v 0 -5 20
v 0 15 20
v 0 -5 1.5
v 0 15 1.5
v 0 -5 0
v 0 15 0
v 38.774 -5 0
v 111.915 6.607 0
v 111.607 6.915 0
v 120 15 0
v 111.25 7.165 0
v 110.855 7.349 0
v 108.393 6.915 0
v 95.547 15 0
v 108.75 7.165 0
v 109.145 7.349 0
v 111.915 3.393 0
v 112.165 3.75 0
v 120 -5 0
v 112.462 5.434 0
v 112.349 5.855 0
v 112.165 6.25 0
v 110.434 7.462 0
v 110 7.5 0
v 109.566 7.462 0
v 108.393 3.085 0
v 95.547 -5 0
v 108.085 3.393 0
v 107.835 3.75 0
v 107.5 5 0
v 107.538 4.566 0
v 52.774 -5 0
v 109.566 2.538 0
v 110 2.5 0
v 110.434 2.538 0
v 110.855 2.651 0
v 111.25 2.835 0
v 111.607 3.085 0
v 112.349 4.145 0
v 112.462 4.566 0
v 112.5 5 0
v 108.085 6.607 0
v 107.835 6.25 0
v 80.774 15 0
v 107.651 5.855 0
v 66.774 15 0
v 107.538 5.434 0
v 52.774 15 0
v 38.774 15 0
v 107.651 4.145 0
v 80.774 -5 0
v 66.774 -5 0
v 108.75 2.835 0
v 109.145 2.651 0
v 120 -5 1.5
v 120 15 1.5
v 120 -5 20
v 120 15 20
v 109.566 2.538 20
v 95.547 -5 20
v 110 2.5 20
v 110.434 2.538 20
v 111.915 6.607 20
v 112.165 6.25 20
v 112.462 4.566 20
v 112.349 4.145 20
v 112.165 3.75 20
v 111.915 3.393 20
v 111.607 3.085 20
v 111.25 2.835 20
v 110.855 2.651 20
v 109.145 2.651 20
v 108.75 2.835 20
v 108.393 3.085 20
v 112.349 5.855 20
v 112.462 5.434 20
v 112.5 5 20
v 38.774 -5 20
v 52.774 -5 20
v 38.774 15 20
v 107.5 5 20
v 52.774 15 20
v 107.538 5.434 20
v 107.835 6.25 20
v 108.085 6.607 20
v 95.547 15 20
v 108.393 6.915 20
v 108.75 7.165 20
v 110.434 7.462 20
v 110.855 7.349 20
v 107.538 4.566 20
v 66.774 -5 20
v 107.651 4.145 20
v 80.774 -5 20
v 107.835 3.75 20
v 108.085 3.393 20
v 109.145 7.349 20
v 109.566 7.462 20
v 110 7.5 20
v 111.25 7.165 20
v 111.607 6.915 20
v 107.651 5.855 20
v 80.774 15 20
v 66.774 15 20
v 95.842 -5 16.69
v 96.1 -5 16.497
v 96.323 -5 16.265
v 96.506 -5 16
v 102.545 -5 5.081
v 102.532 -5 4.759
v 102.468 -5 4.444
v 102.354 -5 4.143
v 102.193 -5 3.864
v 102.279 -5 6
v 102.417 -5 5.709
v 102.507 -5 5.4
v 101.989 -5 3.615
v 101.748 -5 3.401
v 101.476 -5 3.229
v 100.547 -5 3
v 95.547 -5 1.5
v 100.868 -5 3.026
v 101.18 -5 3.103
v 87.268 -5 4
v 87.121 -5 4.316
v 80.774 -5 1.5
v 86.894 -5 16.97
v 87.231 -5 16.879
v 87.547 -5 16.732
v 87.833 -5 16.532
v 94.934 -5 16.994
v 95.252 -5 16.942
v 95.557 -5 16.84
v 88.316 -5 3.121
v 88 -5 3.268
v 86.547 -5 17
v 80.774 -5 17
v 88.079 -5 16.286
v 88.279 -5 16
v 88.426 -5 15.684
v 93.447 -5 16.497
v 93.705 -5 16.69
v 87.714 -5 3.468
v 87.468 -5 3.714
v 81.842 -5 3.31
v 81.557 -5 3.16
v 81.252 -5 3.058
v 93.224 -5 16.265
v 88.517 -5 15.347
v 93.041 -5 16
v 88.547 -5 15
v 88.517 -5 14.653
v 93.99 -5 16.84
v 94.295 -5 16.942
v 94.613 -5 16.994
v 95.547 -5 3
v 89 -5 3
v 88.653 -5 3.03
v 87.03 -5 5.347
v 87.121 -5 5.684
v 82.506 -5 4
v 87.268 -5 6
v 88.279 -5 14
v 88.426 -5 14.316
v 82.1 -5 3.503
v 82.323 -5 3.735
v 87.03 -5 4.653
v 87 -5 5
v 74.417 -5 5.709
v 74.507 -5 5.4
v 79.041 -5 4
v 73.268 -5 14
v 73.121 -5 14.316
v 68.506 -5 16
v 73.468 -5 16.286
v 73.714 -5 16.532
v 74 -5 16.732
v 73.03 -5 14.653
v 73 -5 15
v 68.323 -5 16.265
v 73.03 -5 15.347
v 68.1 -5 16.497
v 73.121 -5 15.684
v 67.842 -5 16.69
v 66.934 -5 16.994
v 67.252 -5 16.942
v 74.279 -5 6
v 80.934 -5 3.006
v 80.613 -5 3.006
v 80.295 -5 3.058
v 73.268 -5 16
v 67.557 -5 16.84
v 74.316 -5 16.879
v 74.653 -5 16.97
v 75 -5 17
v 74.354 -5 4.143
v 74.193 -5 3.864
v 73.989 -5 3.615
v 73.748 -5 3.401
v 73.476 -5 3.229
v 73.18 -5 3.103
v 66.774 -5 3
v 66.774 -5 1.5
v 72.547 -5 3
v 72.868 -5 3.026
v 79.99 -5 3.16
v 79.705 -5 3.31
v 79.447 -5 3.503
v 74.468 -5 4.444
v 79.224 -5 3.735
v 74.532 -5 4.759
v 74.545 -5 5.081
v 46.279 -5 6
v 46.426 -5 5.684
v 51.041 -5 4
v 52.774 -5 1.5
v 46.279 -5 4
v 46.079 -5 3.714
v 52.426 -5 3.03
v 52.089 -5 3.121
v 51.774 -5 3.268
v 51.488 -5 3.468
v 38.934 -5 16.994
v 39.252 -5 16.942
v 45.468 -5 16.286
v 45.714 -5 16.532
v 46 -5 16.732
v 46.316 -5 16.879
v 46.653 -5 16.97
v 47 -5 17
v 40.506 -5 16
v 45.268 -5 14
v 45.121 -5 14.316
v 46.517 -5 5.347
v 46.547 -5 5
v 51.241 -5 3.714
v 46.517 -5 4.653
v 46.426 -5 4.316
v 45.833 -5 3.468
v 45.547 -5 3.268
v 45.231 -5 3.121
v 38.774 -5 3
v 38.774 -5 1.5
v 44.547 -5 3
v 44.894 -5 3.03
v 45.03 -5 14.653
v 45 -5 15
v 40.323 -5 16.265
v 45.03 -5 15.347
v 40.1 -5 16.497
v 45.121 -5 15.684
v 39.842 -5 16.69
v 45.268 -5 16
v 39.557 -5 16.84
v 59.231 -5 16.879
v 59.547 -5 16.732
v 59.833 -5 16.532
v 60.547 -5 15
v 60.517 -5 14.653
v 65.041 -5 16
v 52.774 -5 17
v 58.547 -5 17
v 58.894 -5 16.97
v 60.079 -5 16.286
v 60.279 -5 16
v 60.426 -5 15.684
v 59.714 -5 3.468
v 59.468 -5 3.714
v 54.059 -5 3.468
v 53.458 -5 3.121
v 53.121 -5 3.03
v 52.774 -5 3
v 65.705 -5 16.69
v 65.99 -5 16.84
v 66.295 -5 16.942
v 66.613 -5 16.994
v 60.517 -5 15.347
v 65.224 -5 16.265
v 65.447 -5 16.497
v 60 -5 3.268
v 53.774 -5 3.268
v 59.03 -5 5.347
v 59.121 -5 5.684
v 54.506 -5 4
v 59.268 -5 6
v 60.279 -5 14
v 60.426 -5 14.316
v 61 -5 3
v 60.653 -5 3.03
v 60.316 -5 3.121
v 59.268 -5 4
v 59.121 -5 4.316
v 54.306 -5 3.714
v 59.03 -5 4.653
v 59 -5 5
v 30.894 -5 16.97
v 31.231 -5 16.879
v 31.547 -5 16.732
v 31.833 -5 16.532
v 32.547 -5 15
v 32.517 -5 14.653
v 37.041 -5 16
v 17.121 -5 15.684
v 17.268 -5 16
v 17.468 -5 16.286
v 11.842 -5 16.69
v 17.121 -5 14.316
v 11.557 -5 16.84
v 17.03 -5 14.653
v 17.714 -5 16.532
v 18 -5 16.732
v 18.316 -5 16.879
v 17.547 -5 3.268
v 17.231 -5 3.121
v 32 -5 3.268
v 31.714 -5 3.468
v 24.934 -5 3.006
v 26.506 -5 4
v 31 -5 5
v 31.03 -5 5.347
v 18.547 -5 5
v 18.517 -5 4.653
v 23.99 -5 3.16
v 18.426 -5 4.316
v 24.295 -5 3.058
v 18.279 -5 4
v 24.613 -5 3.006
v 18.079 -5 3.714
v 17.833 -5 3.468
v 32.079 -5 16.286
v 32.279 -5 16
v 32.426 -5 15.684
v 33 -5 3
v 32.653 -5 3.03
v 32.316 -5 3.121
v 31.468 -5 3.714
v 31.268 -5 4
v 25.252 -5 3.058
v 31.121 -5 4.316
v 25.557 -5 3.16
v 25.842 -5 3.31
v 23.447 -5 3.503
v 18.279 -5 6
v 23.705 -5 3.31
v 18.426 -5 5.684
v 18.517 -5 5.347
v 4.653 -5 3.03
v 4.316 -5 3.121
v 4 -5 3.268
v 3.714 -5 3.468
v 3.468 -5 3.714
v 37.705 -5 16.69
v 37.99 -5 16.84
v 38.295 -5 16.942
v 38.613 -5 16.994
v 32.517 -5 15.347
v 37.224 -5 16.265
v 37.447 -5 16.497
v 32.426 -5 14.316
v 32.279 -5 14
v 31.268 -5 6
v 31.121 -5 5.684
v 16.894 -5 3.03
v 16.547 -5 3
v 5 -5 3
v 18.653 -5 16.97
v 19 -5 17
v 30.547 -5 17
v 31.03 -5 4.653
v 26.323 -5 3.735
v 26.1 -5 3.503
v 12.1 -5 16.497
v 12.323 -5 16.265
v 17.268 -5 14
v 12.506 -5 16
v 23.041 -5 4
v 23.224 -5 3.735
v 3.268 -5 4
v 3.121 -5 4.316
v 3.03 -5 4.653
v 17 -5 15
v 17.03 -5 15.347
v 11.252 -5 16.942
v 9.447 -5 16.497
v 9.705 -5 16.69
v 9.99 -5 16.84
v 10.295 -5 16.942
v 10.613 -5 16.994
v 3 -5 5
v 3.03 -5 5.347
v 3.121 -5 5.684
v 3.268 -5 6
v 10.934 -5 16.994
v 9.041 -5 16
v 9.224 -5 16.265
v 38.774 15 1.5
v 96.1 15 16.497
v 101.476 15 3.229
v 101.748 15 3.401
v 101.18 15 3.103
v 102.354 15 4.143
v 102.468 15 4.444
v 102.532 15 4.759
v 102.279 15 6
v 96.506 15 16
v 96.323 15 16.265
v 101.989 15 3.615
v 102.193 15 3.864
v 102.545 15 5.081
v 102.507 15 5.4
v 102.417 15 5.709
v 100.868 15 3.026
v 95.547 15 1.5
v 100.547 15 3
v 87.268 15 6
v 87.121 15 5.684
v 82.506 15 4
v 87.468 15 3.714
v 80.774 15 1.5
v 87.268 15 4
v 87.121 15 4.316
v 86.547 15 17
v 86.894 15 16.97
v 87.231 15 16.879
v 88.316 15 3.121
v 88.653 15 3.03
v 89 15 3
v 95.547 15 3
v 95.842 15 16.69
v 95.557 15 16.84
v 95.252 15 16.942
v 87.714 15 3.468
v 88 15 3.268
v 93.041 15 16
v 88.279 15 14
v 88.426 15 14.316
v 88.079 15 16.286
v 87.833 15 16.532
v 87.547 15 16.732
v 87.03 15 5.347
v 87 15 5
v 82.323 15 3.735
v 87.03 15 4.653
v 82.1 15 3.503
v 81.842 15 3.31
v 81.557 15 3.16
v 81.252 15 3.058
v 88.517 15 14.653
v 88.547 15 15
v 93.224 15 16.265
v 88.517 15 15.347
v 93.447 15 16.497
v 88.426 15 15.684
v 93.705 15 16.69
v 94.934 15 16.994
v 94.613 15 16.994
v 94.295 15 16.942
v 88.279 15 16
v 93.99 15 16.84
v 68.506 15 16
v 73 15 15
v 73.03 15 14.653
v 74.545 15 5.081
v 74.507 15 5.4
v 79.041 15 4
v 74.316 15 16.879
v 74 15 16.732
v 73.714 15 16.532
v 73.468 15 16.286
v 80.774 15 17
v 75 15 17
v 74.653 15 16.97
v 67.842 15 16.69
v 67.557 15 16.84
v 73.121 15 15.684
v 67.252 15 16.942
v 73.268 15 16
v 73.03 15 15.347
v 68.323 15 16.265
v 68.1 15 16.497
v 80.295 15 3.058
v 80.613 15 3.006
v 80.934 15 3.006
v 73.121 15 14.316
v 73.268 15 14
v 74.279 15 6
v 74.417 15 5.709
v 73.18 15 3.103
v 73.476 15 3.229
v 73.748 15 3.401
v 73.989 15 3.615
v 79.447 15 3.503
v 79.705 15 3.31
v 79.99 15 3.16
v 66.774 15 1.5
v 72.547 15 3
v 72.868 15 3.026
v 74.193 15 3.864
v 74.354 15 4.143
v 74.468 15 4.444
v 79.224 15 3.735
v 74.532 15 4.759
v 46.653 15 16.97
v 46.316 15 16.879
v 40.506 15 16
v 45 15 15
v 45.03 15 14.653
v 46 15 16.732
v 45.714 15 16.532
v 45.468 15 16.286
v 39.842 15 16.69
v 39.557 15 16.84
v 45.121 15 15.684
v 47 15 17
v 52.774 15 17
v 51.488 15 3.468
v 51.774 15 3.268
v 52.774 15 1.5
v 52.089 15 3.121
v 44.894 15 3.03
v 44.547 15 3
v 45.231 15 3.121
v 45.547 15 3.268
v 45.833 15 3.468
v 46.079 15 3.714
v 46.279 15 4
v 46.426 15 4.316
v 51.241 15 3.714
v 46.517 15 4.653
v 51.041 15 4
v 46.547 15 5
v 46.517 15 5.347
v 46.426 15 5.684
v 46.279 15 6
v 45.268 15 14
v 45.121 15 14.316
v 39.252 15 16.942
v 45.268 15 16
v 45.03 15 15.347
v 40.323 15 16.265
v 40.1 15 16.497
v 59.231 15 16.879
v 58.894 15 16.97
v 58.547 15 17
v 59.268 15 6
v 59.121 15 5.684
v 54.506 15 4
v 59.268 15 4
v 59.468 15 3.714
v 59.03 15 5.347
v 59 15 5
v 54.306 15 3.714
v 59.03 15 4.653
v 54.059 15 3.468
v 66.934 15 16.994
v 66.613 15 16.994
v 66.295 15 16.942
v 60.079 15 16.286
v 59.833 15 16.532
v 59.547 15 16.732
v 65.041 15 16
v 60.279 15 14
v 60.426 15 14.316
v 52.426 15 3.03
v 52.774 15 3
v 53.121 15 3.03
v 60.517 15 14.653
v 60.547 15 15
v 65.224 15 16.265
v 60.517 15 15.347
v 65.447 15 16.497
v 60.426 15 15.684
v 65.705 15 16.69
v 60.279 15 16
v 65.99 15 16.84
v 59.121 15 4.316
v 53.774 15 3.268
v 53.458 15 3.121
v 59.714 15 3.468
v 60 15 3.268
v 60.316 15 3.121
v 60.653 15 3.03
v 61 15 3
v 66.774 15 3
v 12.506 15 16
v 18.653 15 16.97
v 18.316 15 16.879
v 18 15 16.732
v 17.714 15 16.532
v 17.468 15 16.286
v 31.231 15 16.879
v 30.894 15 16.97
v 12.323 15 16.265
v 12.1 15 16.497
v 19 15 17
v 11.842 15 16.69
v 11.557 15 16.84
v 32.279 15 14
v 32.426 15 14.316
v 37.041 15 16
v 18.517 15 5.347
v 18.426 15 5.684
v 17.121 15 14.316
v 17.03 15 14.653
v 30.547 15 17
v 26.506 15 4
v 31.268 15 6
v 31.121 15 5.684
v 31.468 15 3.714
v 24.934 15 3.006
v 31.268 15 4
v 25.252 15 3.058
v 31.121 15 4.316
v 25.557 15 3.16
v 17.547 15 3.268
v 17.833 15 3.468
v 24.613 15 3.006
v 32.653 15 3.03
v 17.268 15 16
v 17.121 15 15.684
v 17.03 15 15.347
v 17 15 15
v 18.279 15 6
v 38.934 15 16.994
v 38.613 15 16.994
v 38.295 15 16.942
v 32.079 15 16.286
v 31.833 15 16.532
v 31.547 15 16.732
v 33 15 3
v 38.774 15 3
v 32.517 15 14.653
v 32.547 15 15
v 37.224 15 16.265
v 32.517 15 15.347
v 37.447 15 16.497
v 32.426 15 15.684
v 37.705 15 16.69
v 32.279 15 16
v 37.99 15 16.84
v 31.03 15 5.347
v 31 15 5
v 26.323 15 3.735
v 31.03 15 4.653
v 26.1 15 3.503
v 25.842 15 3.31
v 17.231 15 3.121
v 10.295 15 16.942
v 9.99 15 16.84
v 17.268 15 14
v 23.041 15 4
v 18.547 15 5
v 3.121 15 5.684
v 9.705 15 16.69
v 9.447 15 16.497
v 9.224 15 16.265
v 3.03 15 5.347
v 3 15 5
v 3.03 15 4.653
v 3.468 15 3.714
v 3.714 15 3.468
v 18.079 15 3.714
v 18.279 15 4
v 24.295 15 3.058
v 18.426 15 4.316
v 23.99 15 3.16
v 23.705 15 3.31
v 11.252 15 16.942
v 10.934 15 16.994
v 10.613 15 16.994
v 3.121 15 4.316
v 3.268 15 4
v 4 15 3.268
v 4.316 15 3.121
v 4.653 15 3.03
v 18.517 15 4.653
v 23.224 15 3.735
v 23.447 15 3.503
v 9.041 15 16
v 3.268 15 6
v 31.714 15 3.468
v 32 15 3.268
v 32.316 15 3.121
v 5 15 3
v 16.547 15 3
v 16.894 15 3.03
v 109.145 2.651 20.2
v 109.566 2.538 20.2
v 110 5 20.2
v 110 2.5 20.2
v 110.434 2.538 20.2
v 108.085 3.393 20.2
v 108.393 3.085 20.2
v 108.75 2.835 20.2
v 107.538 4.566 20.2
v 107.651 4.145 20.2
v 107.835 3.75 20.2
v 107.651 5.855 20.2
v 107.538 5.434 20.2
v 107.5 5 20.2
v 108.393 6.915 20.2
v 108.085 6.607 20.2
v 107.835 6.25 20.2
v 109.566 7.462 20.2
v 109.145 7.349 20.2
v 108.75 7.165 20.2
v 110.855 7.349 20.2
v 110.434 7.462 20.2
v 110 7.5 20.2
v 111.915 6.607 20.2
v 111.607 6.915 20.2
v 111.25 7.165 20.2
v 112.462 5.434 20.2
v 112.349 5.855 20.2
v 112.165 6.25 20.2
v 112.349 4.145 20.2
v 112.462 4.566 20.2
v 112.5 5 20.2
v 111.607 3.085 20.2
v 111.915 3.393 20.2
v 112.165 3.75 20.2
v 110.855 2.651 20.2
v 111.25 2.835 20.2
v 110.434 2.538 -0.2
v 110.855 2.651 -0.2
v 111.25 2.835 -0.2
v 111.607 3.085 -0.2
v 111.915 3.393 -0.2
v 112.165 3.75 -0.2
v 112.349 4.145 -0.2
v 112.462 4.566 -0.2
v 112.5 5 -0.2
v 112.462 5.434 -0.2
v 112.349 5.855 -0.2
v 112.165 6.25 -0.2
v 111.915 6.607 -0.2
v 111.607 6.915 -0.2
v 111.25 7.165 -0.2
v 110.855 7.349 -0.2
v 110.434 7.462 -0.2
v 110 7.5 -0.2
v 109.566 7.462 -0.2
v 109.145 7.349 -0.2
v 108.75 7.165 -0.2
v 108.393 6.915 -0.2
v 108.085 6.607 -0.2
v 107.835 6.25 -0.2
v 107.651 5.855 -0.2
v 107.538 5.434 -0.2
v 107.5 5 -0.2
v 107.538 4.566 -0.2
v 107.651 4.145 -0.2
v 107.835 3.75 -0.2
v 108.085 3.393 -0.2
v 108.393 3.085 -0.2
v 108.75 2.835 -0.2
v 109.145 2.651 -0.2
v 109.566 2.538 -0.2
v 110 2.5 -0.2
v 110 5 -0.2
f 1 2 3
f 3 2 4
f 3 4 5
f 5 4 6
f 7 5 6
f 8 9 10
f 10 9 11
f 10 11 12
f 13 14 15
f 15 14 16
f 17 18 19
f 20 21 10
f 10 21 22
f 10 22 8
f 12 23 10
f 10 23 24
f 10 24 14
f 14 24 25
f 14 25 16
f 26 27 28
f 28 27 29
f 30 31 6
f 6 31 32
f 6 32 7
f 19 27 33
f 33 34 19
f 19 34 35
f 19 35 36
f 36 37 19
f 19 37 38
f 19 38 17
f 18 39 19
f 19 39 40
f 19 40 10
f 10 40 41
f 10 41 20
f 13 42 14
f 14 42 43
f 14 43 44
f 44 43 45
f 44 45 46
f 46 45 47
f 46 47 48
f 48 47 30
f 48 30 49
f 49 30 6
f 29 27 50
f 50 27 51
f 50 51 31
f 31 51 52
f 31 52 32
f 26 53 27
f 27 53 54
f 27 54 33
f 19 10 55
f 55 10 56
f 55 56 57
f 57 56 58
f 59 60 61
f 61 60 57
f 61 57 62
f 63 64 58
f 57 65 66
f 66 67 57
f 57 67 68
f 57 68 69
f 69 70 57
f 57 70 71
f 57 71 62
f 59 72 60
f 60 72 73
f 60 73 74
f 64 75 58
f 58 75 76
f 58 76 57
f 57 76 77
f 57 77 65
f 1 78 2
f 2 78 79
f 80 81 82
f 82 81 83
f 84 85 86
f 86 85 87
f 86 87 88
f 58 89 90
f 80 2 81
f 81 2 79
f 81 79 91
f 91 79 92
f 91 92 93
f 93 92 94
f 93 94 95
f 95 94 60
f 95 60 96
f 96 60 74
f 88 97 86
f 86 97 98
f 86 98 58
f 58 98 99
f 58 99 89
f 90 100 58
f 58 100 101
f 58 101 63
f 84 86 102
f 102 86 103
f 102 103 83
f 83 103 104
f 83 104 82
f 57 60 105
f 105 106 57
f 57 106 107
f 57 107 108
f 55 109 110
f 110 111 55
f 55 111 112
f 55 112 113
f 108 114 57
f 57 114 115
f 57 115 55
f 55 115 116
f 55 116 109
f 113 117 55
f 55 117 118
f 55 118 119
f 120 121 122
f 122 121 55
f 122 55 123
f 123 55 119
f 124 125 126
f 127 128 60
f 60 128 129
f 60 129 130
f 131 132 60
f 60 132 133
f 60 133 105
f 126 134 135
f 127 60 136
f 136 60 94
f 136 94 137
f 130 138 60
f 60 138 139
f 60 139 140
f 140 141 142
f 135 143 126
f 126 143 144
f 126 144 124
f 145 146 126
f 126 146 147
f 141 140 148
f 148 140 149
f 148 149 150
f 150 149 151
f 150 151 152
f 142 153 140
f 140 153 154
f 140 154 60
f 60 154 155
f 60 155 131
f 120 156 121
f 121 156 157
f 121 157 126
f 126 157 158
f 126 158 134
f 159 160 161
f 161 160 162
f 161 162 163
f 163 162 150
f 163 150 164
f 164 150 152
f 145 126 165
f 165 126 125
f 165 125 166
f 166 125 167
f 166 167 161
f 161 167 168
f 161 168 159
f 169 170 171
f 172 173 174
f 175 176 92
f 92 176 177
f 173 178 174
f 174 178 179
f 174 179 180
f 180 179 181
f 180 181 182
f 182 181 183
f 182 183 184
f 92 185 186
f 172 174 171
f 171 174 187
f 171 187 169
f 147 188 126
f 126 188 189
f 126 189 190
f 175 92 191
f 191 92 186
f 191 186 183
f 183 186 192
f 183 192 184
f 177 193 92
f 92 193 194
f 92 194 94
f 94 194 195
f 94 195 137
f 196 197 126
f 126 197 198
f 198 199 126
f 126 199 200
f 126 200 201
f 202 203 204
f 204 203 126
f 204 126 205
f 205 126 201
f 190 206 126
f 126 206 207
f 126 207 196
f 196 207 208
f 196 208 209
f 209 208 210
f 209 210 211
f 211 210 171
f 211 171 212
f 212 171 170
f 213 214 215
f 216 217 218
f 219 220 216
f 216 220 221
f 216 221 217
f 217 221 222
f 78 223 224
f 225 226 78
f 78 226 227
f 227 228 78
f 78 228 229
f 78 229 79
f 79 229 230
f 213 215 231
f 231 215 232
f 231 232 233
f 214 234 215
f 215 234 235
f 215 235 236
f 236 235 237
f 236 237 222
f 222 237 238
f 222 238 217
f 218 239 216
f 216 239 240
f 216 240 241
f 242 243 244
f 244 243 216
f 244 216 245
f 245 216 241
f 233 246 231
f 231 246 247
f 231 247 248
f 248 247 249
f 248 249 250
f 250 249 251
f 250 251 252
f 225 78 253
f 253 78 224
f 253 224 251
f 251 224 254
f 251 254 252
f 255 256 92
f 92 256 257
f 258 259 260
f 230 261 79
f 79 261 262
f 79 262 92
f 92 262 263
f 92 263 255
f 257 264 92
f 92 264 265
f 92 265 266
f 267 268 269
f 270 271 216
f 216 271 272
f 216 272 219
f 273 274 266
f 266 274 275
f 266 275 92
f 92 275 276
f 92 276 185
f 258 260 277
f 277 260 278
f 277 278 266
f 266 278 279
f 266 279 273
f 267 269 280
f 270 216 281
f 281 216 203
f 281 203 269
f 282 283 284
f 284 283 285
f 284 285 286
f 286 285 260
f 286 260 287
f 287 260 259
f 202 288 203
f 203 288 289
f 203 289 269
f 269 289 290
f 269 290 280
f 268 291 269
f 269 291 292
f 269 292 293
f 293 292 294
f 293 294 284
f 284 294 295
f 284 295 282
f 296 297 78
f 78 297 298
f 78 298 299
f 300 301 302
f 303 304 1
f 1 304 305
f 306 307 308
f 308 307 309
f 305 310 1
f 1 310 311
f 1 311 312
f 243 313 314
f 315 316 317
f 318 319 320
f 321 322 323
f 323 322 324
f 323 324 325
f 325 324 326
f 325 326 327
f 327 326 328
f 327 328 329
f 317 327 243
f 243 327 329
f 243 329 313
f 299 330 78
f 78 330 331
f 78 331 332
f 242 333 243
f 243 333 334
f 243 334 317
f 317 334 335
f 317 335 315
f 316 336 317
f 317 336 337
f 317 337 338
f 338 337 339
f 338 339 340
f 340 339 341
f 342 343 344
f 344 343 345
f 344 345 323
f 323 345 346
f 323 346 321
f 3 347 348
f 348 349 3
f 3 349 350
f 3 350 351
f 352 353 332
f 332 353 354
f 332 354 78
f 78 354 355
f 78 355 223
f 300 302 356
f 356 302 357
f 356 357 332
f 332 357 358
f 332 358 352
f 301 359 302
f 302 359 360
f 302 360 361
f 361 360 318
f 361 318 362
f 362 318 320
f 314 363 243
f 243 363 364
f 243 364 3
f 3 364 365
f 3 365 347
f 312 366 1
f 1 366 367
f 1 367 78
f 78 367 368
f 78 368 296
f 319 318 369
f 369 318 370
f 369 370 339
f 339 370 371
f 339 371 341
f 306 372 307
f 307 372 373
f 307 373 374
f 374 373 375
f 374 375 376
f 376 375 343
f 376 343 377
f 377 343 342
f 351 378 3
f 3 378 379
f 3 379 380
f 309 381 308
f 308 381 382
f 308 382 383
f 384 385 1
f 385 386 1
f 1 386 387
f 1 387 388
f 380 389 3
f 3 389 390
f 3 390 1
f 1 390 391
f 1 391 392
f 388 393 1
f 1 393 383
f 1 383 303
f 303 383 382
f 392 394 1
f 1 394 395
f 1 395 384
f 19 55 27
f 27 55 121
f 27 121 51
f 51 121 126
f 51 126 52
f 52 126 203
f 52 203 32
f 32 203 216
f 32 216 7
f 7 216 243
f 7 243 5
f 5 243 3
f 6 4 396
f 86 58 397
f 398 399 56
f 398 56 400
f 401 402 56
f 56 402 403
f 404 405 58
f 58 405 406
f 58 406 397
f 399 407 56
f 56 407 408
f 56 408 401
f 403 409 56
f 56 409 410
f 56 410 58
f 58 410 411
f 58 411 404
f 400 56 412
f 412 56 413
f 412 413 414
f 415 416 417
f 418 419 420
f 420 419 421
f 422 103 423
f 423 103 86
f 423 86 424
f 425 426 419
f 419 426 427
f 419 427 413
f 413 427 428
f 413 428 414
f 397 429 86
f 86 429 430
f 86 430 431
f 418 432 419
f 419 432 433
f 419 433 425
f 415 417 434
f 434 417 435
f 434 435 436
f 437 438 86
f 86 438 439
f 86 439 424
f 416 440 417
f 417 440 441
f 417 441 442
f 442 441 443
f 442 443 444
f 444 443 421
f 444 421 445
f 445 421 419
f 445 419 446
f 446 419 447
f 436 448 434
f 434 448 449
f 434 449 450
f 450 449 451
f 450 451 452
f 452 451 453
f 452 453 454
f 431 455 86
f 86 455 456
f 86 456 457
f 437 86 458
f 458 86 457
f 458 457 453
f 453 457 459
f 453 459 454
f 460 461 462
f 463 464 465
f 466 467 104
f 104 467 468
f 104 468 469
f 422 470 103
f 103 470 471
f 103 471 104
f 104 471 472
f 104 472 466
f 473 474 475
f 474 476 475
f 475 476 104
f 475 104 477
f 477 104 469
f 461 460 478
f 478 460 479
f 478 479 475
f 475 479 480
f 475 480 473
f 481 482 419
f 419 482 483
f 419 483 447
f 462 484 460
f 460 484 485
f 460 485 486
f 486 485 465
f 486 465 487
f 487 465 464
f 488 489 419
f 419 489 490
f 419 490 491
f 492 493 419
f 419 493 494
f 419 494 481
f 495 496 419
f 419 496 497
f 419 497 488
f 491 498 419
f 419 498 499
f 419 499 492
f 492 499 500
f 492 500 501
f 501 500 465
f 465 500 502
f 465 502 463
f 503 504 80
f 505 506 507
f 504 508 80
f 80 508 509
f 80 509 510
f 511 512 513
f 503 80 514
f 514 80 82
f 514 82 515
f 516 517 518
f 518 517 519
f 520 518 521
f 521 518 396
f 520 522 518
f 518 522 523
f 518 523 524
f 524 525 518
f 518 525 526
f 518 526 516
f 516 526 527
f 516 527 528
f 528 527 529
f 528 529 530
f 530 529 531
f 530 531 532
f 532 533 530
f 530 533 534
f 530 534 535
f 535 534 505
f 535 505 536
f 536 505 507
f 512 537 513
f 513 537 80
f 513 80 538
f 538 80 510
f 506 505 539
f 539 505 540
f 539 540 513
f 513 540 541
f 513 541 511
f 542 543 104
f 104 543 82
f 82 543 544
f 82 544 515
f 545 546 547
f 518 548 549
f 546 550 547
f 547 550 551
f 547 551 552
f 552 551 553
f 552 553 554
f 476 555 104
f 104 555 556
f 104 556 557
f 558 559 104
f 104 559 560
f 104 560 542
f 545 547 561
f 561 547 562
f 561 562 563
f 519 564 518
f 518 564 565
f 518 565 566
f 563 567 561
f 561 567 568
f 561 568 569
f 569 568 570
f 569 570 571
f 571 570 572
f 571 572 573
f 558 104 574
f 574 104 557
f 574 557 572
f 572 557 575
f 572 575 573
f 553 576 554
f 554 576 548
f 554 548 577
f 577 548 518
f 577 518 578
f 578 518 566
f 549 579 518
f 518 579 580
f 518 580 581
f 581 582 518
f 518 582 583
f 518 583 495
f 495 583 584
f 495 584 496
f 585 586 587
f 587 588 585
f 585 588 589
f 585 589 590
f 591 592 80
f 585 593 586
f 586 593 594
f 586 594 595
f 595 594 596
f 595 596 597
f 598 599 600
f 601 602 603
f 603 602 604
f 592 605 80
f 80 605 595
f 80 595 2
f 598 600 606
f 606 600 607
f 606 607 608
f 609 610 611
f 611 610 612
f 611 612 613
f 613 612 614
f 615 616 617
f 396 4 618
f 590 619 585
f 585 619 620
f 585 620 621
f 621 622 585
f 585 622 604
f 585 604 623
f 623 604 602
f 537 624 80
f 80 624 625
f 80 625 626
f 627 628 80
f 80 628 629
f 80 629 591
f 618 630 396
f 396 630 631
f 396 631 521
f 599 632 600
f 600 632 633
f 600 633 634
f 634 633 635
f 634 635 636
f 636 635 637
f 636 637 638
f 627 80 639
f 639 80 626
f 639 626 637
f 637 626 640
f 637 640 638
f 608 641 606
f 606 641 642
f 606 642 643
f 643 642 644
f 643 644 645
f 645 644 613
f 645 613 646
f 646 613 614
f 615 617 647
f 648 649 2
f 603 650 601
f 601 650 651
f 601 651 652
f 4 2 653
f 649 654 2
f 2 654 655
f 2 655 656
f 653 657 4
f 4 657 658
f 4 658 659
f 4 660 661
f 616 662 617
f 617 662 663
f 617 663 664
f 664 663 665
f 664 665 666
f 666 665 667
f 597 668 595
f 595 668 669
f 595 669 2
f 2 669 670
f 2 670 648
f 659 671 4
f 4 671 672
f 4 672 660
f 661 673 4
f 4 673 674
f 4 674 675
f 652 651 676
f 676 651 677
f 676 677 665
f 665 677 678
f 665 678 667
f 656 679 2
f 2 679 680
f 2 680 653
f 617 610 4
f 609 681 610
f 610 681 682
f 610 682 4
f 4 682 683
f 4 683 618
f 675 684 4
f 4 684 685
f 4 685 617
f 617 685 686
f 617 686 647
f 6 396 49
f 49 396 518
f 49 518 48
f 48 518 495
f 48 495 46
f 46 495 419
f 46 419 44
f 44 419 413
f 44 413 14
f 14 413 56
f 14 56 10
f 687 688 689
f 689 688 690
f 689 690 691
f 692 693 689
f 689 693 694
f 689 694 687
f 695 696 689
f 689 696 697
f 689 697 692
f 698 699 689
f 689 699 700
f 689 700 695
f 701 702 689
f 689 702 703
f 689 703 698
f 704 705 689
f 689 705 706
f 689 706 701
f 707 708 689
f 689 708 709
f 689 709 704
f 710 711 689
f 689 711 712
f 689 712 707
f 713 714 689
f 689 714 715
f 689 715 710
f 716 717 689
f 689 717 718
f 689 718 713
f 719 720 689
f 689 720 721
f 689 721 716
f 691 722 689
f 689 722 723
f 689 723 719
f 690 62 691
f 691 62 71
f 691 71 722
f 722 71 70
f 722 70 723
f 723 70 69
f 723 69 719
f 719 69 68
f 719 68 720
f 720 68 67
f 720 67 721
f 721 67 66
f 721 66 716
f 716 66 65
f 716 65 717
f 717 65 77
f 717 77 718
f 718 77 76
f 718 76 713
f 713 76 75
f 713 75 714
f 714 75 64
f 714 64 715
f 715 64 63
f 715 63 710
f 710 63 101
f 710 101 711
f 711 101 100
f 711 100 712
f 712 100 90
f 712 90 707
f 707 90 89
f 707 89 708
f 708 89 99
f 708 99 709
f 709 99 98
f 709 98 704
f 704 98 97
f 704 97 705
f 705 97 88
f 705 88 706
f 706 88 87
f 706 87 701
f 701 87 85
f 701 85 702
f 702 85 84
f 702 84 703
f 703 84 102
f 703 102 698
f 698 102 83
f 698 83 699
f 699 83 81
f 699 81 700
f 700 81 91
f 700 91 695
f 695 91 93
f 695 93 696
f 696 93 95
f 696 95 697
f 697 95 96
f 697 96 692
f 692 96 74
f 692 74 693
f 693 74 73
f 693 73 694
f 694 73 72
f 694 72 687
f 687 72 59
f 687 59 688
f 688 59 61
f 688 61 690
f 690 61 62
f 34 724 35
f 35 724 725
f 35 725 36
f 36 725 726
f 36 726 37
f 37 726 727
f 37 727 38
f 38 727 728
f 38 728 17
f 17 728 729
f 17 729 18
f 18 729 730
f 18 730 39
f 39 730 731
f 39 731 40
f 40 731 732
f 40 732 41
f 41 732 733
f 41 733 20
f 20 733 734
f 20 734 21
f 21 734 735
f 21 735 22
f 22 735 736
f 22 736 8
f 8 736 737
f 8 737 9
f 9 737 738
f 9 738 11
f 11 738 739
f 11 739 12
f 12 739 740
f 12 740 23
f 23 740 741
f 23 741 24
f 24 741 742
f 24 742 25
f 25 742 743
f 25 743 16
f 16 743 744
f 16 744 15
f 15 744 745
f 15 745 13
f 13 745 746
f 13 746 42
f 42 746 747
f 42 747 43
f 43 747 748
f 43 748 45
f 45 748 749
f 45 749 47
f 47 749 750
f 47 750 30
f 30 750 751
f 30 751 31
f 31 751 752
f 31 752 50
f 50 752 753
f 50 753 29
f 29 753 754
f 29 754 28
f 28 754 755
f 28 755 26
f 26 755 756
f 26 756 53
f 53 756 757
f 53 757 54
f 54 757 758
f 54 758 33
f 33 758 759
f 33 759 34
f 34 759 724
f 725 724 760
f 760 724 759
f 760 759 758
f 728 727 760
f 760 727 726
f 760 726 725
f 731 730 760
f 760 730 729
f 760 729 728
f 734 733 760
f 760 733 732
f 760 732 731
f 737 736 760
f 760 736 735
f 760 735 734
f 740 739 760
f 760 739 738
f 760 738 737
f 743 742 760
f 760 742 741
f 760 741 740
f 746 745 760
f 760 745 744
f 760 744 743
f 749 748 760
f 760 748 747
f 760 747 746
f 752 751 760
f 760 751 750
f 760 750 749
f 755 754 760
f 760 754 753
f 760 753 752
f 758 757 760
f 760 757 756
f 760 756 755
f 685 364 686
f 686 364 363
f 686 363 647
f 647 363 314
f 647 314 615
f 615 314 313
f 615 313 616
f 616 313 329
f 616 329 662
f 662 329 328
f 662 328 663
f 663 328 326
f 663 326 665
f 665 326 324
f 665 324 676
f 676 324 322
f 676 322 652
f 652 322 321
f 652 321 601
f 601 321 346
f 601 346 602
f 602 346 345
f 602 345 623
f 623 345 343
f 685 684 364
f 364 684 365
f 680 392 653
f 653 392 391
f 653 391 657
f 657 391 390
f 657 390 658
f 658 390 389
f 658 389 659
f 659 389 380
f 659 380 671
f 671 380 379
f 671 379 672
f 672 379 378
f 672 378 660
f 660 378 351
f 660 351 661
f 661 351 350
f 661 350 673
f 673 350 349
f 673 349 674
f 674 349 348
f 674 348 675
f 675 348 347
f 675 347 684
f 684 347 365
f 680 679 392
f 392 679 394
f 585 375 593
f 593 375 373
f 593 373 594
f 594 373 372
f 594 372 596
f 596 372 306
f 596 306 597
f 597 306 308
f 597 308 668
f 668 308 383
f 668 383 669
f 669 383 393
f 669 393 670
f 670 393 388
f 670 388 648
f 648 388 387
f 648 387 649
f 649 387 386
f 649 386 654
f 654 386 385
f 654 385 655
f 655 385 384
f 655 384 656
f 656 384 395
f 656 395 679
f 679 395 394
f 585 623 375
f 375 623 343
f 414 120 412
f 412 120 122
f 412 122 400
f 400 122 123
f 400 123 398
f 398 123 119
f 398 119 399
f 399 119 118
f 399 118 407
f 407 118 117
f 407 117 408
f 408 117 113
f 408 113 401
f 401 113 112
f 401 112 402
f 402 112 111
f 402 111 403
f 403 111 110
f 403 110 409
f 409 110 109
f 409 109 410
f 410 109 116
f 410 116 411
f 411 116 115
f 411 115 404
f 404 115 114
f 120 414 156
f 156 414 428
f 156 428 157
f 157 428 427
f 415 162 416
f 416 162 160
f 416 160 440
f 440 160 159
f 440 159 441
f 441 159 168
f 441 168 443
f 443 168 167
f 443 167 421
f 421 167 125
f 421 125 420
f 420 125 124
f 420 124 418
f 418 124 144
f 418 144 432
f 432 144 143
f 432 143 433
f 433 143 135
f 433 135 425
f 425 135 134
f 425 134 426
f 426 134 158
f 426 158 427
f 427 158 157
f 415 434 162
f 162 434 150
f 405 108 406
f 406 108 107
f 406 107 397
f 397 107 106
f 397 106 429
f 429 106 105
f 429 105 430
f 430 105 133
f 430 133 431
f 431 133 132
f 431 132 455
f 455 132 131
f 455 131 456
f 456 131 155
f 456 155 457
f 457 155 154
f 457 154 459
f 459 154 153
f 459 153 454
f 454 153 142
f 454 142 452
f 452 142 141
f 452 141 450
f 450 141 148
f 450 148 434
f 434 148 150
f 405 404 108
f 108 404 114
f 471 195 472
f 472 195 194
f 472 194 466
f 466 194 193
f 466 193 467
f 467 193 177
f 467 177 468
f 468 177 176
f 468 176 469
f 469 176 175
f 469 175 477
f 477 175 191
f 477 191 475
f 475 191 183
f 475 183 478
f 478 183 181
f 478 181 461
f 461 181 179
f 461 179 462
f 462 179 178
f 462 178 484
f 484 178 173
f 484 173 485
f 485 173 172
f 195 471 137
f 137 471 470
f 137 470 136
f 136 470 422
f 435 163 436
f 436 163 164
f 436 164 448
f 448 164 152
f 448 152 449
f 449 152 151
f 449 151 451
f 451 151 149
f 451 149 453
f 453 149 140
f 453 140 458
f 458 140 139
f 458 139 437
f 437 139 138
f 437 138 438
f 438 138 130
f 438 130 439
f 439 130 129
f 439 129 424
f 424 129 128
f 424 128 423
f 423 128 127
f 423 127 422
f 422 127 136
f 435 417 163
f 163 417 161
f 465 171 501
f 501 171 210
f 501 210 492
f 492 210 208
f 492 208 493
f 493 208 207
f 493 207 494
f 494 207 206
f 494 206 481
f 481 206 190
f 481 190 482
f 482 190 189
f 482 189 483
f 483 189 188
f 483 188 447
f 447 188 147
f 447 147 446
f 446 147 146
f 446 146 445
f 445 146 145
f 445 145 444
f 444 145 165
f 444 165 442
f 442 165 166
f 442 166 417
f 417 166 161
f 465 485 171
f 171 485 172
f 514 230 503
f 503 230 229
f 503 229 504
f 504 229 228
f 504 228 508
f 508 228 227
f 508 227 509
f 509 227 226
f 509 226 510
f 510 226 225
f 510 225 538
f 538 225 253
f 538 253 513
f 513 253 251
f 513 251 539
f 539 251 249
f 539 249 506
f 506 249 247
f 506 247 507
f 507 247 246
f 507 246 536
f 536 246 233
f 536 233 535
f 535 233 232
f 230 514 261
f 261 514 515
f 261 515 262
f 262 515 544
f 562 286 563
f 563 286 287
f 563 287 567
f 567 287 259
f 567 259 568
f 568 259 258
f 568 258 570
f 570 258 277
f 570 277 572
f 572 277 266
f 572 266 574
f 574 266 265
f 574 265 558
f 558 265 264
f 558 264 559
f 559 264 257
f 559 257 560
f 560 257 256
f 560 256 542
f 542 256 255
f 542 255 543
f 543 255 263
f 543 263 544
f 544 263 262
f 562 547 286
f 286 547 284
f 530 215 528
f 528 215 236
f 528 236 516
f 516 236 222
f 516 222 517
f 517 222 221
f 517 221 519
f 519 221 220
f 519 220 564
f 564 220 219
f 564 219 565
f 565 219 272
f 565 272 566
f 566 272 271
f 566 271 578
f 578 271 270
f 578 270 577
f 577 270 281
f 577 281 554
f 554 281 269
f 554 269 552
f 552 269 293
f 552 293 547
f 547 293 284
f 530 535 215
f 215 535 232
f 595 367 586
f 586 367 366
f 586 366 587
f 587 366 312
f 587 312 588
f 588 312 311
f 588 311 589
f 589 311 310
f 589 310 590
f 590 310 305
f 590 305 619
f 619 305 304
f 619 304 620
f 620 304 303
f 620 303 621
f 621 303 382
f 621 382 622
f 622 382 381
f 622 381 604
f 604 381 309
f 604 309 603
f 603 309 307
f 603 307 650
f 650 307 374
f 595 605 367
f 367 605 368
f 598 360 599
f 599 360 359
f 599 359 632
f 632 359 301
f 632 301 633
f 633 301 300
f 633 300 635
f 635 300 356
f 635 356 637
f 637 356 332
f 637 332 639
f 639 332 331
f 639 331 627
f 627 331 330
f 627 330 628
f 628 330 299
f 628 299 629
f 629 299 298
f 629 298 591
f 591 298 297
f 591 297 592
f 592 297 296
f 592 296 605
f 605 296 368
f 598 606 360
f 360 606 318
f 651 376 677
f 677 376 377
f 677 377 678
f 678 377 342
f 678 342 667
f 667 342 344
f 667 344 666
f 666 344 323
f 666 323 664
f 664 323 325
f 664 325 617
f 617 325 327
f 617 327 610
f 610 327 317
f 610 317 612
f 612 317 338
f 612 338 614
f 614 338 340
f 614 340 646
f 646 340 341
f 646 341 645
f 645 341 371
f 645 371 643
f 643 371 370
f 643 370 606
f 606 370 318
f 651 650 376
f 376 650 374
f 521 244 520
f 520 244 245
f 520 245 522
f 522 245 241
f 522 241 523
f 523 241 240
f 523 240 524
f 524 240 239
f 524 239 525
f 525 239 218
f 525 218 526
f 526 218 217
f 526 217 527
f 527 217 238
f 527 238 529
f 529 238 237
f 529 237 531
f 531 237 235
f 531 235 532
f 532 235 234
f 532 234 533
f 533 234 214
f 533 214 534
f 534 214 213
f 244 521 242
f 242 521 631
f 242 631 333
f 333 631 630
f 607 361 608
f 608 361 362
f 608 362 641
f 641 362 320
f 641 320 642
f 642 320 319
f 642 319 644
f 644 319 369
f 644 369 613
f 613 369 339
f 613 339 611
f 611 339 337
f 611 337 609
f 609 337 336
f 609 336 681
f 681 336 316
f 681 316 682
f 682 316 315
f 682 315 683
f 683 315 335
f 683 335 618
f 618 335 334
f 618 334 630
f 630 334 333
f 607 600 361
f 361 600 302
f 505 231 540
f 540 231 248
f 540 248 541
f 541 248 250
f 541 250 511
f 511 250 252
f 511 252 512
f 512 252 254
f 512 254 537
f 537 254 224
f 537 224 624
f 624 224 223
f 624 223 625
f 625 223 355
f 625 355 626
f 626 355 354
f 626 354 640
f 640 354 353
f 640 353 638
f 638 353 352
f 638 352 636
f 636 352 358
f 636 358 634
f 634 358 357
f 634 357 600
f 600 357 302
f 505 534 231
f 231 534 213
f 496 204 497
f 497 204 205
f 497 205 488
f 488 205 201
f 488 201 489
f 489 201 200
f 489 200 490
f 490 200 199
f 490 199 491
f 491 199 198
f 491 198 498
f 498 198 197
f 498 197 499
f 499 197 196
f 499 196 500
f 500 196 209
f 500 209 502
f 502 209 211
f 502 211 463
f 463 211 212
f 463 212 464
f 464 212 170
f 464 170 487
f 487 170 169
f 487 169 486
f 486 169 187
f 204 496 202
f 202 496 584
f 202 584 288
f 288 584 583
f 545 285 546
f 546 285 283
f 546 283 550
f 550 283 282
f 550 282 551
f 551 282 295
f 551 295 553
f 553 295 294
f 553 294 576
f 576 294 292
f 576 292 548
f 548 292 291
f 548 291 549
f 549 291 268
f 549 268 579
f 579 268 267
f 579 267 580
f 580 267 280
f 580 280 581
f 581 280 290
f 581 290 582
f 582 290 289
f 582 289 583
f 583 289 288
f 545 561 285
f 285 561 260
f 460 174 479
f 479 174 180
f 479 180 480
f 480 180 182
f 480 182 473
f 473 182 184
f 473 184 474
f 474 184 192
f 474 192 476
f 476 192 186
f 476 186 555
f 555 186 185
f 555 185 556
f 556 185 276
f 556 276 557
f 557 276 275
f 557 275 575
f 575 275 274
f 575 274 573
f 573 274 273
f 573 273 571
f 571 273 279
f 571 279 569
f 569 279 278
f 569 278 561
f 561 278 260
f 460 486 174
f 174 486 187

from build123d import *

# Parameters (mm, degrees)
SKETCH5_W                = 120
SKETCH5_H                = 20
BOSS_EXTRUDE1_DEPTH      = 20
BOSS_EXTRUDE2_DEPTH      = 0.2
BOSS_EXTRUDE2_DEPTH_BACK = 20.2
SKETCH7_R                = 2.5
CUT_EXTRUDE1_DEPTH       = 124.320882254
BODY_MOVE_COPY1_ANGLE    = 90


with BuildPart() as part:
    # Sketch5 → Boss-Extrude1 (new body)
    with BuildSketch(Plane.XY):
        with Locations((60, 10)):
            Rectangle(SKETCH5_W, SKETCH5_H)
    extrude(amount=BOSS_EXTRUDE1_DEPTH)

    # Sketch7 → Boss-Extrude2 (add, two sides: drawn at the far end of the back side and taken through both)
    with BuildSketch(Plane(origin=(0, 20, 0), x_dir=(1, 0, 0), z_dir=(0, 1, 0)).offset(-BOSS_EXTRUDE2_DEPTH_BACK)):
        with Locations(Location((110, -10, 0), (0, 0, 270))):
            Circle(SKETCH7_R)
    extrude(amount=BOSS_EXTRUDE2_DEPTH + BOSS_EXTRUDE2_DEPTH_BACK)

    # Sketch6 → Cut-Extrude1 (cut, through all)
    with BuildSketch(Plane.XY.offset(20)):
        with BuildLine():
            Line((54.505553499, 4), (60.279056191, 14))
            ThreePointArc((60.279056191, 14), (60.279056191, 16), (58.547005384, 17))
            Line((58.547005384, 17), (47, 17))
            ThreePointArc((47, 17), (45.267949192, 16), (45.267949192, 14))
            Line((45.267949192, 14), (51.041451884, 4))
            ThreePointArc((51.041451884, 4), (52.773502692, 3), (54.505553499, 4))
        make_face()
        with BuildLine():
            Line((5, 3), (16.547005384, 3))
            ThreePointArc((16.547005384, 3), (18.279056191, 4), (18.279056191, 6))
            Line((18.279056191, 6), (12.505553499, 16))
            ThreePointArc((12.505553499, 16), (10.773502692, 17), (9.041451884, 16))
            Line((9.041451884, 16), (3.267949192, 6))
            ThreePointArc((3.267949192, 6), (3.267949192, 4), (5, 3))
        make_face()
        with BuildLine():
            Line((26.505553499, 4), (32.279056191, 14))
            ThreePointArc((32.279056191, 14), (32.279056191, 16), (30.547005384, 17))
            Line((30.547005384, 17), (19, 17))
            ThreePointArc((19, 17), (17.267949192, 16), (17.267949192, 14))
            Line((17.267949192, 14), (23.041451884, 4))
            ThreePointArc((23.041451884, 4), (24.773502692, 3), (26.505553499, 4))
        make_face()
        with BuildLine():
            Line((37.041451884, 16), (31.267949192, 6))
            ThreePointArc((31.267949192, 6), (31.267949192, 4), (33, 3))
            Line((33, 3), (44.547005384, 3))
            ThreePointArc((44.547005384, 3), (46.279056191, 4), (46.279056191, 6))
            Line((46.279056191, 6), (40.505553499, 16))
            ThreePointArc((40.505553499, 16), (38.773502692, 17), (37.041451884, 16))
        make_face()
        with BuildLine():
            Line((65.041451884, 16), (59.267949192, 6))
            ThreePointArc((59.267949192, 6), (59.267949192, 4), (61, 3))
            Line((61, 3), (72.547005384, 3))
            ThreePointArc((72.547005384, 3), (74.279056191, 4), (74.279056191, 6))
            Line((74.279056191, 6), (68.505553499, 16))
            ThreePointArc((68.505553499, 16), (66.773502692, 17), (65.041451884, 16))
        make_face()
        with BuildLine():
            Line((93.041451884, 16), (87.267949192, 6))
            ThreePointArc((87.267949192, 6), (87.267949192, 4), (89, 3))
            Line((89, 3), (100.547005384, 3))
            ThreePointArc((100.547005384, 3), (102.279056191, 4), (102.279056191, 6))
            Line((102.279056191, 6), (96.505553499, 16))
            ThreePointArc((96.505553499, 16), (94.773502692, 17), (93.041451884, 16))
        make_face()
        with BuildLine():
            Line((82.505553499, 4), (88.279056191, 14))
            ThreePointArc((88.279056191, 14), (88.279056191, 16), (86.547005384, 17))
            Line((86.547005384, 17), (75, 17))
            ThreePointArc((75, 17), (73.267949192, 16), (73.267949192, 14))
            Line((73.267949192, 14), (79.041451884, 4))
            ThreePointArc((79.041451884, 4), (80.773502692, 3), (82.505553499, 4))
        make_face()
    extrude(amount=-CUT_EXTRUDE1_DEPTH, mode=Mode.SUBTRACT)


with BuildPart() as part_1:
    # Body-Move/Copy1: moved
    add(part.part.rotate(Axis((0, 7.5, 7.5), (1, 0, 0)), BODY_MOVE_COPY1_ANGLE))


solid = part_1.part
